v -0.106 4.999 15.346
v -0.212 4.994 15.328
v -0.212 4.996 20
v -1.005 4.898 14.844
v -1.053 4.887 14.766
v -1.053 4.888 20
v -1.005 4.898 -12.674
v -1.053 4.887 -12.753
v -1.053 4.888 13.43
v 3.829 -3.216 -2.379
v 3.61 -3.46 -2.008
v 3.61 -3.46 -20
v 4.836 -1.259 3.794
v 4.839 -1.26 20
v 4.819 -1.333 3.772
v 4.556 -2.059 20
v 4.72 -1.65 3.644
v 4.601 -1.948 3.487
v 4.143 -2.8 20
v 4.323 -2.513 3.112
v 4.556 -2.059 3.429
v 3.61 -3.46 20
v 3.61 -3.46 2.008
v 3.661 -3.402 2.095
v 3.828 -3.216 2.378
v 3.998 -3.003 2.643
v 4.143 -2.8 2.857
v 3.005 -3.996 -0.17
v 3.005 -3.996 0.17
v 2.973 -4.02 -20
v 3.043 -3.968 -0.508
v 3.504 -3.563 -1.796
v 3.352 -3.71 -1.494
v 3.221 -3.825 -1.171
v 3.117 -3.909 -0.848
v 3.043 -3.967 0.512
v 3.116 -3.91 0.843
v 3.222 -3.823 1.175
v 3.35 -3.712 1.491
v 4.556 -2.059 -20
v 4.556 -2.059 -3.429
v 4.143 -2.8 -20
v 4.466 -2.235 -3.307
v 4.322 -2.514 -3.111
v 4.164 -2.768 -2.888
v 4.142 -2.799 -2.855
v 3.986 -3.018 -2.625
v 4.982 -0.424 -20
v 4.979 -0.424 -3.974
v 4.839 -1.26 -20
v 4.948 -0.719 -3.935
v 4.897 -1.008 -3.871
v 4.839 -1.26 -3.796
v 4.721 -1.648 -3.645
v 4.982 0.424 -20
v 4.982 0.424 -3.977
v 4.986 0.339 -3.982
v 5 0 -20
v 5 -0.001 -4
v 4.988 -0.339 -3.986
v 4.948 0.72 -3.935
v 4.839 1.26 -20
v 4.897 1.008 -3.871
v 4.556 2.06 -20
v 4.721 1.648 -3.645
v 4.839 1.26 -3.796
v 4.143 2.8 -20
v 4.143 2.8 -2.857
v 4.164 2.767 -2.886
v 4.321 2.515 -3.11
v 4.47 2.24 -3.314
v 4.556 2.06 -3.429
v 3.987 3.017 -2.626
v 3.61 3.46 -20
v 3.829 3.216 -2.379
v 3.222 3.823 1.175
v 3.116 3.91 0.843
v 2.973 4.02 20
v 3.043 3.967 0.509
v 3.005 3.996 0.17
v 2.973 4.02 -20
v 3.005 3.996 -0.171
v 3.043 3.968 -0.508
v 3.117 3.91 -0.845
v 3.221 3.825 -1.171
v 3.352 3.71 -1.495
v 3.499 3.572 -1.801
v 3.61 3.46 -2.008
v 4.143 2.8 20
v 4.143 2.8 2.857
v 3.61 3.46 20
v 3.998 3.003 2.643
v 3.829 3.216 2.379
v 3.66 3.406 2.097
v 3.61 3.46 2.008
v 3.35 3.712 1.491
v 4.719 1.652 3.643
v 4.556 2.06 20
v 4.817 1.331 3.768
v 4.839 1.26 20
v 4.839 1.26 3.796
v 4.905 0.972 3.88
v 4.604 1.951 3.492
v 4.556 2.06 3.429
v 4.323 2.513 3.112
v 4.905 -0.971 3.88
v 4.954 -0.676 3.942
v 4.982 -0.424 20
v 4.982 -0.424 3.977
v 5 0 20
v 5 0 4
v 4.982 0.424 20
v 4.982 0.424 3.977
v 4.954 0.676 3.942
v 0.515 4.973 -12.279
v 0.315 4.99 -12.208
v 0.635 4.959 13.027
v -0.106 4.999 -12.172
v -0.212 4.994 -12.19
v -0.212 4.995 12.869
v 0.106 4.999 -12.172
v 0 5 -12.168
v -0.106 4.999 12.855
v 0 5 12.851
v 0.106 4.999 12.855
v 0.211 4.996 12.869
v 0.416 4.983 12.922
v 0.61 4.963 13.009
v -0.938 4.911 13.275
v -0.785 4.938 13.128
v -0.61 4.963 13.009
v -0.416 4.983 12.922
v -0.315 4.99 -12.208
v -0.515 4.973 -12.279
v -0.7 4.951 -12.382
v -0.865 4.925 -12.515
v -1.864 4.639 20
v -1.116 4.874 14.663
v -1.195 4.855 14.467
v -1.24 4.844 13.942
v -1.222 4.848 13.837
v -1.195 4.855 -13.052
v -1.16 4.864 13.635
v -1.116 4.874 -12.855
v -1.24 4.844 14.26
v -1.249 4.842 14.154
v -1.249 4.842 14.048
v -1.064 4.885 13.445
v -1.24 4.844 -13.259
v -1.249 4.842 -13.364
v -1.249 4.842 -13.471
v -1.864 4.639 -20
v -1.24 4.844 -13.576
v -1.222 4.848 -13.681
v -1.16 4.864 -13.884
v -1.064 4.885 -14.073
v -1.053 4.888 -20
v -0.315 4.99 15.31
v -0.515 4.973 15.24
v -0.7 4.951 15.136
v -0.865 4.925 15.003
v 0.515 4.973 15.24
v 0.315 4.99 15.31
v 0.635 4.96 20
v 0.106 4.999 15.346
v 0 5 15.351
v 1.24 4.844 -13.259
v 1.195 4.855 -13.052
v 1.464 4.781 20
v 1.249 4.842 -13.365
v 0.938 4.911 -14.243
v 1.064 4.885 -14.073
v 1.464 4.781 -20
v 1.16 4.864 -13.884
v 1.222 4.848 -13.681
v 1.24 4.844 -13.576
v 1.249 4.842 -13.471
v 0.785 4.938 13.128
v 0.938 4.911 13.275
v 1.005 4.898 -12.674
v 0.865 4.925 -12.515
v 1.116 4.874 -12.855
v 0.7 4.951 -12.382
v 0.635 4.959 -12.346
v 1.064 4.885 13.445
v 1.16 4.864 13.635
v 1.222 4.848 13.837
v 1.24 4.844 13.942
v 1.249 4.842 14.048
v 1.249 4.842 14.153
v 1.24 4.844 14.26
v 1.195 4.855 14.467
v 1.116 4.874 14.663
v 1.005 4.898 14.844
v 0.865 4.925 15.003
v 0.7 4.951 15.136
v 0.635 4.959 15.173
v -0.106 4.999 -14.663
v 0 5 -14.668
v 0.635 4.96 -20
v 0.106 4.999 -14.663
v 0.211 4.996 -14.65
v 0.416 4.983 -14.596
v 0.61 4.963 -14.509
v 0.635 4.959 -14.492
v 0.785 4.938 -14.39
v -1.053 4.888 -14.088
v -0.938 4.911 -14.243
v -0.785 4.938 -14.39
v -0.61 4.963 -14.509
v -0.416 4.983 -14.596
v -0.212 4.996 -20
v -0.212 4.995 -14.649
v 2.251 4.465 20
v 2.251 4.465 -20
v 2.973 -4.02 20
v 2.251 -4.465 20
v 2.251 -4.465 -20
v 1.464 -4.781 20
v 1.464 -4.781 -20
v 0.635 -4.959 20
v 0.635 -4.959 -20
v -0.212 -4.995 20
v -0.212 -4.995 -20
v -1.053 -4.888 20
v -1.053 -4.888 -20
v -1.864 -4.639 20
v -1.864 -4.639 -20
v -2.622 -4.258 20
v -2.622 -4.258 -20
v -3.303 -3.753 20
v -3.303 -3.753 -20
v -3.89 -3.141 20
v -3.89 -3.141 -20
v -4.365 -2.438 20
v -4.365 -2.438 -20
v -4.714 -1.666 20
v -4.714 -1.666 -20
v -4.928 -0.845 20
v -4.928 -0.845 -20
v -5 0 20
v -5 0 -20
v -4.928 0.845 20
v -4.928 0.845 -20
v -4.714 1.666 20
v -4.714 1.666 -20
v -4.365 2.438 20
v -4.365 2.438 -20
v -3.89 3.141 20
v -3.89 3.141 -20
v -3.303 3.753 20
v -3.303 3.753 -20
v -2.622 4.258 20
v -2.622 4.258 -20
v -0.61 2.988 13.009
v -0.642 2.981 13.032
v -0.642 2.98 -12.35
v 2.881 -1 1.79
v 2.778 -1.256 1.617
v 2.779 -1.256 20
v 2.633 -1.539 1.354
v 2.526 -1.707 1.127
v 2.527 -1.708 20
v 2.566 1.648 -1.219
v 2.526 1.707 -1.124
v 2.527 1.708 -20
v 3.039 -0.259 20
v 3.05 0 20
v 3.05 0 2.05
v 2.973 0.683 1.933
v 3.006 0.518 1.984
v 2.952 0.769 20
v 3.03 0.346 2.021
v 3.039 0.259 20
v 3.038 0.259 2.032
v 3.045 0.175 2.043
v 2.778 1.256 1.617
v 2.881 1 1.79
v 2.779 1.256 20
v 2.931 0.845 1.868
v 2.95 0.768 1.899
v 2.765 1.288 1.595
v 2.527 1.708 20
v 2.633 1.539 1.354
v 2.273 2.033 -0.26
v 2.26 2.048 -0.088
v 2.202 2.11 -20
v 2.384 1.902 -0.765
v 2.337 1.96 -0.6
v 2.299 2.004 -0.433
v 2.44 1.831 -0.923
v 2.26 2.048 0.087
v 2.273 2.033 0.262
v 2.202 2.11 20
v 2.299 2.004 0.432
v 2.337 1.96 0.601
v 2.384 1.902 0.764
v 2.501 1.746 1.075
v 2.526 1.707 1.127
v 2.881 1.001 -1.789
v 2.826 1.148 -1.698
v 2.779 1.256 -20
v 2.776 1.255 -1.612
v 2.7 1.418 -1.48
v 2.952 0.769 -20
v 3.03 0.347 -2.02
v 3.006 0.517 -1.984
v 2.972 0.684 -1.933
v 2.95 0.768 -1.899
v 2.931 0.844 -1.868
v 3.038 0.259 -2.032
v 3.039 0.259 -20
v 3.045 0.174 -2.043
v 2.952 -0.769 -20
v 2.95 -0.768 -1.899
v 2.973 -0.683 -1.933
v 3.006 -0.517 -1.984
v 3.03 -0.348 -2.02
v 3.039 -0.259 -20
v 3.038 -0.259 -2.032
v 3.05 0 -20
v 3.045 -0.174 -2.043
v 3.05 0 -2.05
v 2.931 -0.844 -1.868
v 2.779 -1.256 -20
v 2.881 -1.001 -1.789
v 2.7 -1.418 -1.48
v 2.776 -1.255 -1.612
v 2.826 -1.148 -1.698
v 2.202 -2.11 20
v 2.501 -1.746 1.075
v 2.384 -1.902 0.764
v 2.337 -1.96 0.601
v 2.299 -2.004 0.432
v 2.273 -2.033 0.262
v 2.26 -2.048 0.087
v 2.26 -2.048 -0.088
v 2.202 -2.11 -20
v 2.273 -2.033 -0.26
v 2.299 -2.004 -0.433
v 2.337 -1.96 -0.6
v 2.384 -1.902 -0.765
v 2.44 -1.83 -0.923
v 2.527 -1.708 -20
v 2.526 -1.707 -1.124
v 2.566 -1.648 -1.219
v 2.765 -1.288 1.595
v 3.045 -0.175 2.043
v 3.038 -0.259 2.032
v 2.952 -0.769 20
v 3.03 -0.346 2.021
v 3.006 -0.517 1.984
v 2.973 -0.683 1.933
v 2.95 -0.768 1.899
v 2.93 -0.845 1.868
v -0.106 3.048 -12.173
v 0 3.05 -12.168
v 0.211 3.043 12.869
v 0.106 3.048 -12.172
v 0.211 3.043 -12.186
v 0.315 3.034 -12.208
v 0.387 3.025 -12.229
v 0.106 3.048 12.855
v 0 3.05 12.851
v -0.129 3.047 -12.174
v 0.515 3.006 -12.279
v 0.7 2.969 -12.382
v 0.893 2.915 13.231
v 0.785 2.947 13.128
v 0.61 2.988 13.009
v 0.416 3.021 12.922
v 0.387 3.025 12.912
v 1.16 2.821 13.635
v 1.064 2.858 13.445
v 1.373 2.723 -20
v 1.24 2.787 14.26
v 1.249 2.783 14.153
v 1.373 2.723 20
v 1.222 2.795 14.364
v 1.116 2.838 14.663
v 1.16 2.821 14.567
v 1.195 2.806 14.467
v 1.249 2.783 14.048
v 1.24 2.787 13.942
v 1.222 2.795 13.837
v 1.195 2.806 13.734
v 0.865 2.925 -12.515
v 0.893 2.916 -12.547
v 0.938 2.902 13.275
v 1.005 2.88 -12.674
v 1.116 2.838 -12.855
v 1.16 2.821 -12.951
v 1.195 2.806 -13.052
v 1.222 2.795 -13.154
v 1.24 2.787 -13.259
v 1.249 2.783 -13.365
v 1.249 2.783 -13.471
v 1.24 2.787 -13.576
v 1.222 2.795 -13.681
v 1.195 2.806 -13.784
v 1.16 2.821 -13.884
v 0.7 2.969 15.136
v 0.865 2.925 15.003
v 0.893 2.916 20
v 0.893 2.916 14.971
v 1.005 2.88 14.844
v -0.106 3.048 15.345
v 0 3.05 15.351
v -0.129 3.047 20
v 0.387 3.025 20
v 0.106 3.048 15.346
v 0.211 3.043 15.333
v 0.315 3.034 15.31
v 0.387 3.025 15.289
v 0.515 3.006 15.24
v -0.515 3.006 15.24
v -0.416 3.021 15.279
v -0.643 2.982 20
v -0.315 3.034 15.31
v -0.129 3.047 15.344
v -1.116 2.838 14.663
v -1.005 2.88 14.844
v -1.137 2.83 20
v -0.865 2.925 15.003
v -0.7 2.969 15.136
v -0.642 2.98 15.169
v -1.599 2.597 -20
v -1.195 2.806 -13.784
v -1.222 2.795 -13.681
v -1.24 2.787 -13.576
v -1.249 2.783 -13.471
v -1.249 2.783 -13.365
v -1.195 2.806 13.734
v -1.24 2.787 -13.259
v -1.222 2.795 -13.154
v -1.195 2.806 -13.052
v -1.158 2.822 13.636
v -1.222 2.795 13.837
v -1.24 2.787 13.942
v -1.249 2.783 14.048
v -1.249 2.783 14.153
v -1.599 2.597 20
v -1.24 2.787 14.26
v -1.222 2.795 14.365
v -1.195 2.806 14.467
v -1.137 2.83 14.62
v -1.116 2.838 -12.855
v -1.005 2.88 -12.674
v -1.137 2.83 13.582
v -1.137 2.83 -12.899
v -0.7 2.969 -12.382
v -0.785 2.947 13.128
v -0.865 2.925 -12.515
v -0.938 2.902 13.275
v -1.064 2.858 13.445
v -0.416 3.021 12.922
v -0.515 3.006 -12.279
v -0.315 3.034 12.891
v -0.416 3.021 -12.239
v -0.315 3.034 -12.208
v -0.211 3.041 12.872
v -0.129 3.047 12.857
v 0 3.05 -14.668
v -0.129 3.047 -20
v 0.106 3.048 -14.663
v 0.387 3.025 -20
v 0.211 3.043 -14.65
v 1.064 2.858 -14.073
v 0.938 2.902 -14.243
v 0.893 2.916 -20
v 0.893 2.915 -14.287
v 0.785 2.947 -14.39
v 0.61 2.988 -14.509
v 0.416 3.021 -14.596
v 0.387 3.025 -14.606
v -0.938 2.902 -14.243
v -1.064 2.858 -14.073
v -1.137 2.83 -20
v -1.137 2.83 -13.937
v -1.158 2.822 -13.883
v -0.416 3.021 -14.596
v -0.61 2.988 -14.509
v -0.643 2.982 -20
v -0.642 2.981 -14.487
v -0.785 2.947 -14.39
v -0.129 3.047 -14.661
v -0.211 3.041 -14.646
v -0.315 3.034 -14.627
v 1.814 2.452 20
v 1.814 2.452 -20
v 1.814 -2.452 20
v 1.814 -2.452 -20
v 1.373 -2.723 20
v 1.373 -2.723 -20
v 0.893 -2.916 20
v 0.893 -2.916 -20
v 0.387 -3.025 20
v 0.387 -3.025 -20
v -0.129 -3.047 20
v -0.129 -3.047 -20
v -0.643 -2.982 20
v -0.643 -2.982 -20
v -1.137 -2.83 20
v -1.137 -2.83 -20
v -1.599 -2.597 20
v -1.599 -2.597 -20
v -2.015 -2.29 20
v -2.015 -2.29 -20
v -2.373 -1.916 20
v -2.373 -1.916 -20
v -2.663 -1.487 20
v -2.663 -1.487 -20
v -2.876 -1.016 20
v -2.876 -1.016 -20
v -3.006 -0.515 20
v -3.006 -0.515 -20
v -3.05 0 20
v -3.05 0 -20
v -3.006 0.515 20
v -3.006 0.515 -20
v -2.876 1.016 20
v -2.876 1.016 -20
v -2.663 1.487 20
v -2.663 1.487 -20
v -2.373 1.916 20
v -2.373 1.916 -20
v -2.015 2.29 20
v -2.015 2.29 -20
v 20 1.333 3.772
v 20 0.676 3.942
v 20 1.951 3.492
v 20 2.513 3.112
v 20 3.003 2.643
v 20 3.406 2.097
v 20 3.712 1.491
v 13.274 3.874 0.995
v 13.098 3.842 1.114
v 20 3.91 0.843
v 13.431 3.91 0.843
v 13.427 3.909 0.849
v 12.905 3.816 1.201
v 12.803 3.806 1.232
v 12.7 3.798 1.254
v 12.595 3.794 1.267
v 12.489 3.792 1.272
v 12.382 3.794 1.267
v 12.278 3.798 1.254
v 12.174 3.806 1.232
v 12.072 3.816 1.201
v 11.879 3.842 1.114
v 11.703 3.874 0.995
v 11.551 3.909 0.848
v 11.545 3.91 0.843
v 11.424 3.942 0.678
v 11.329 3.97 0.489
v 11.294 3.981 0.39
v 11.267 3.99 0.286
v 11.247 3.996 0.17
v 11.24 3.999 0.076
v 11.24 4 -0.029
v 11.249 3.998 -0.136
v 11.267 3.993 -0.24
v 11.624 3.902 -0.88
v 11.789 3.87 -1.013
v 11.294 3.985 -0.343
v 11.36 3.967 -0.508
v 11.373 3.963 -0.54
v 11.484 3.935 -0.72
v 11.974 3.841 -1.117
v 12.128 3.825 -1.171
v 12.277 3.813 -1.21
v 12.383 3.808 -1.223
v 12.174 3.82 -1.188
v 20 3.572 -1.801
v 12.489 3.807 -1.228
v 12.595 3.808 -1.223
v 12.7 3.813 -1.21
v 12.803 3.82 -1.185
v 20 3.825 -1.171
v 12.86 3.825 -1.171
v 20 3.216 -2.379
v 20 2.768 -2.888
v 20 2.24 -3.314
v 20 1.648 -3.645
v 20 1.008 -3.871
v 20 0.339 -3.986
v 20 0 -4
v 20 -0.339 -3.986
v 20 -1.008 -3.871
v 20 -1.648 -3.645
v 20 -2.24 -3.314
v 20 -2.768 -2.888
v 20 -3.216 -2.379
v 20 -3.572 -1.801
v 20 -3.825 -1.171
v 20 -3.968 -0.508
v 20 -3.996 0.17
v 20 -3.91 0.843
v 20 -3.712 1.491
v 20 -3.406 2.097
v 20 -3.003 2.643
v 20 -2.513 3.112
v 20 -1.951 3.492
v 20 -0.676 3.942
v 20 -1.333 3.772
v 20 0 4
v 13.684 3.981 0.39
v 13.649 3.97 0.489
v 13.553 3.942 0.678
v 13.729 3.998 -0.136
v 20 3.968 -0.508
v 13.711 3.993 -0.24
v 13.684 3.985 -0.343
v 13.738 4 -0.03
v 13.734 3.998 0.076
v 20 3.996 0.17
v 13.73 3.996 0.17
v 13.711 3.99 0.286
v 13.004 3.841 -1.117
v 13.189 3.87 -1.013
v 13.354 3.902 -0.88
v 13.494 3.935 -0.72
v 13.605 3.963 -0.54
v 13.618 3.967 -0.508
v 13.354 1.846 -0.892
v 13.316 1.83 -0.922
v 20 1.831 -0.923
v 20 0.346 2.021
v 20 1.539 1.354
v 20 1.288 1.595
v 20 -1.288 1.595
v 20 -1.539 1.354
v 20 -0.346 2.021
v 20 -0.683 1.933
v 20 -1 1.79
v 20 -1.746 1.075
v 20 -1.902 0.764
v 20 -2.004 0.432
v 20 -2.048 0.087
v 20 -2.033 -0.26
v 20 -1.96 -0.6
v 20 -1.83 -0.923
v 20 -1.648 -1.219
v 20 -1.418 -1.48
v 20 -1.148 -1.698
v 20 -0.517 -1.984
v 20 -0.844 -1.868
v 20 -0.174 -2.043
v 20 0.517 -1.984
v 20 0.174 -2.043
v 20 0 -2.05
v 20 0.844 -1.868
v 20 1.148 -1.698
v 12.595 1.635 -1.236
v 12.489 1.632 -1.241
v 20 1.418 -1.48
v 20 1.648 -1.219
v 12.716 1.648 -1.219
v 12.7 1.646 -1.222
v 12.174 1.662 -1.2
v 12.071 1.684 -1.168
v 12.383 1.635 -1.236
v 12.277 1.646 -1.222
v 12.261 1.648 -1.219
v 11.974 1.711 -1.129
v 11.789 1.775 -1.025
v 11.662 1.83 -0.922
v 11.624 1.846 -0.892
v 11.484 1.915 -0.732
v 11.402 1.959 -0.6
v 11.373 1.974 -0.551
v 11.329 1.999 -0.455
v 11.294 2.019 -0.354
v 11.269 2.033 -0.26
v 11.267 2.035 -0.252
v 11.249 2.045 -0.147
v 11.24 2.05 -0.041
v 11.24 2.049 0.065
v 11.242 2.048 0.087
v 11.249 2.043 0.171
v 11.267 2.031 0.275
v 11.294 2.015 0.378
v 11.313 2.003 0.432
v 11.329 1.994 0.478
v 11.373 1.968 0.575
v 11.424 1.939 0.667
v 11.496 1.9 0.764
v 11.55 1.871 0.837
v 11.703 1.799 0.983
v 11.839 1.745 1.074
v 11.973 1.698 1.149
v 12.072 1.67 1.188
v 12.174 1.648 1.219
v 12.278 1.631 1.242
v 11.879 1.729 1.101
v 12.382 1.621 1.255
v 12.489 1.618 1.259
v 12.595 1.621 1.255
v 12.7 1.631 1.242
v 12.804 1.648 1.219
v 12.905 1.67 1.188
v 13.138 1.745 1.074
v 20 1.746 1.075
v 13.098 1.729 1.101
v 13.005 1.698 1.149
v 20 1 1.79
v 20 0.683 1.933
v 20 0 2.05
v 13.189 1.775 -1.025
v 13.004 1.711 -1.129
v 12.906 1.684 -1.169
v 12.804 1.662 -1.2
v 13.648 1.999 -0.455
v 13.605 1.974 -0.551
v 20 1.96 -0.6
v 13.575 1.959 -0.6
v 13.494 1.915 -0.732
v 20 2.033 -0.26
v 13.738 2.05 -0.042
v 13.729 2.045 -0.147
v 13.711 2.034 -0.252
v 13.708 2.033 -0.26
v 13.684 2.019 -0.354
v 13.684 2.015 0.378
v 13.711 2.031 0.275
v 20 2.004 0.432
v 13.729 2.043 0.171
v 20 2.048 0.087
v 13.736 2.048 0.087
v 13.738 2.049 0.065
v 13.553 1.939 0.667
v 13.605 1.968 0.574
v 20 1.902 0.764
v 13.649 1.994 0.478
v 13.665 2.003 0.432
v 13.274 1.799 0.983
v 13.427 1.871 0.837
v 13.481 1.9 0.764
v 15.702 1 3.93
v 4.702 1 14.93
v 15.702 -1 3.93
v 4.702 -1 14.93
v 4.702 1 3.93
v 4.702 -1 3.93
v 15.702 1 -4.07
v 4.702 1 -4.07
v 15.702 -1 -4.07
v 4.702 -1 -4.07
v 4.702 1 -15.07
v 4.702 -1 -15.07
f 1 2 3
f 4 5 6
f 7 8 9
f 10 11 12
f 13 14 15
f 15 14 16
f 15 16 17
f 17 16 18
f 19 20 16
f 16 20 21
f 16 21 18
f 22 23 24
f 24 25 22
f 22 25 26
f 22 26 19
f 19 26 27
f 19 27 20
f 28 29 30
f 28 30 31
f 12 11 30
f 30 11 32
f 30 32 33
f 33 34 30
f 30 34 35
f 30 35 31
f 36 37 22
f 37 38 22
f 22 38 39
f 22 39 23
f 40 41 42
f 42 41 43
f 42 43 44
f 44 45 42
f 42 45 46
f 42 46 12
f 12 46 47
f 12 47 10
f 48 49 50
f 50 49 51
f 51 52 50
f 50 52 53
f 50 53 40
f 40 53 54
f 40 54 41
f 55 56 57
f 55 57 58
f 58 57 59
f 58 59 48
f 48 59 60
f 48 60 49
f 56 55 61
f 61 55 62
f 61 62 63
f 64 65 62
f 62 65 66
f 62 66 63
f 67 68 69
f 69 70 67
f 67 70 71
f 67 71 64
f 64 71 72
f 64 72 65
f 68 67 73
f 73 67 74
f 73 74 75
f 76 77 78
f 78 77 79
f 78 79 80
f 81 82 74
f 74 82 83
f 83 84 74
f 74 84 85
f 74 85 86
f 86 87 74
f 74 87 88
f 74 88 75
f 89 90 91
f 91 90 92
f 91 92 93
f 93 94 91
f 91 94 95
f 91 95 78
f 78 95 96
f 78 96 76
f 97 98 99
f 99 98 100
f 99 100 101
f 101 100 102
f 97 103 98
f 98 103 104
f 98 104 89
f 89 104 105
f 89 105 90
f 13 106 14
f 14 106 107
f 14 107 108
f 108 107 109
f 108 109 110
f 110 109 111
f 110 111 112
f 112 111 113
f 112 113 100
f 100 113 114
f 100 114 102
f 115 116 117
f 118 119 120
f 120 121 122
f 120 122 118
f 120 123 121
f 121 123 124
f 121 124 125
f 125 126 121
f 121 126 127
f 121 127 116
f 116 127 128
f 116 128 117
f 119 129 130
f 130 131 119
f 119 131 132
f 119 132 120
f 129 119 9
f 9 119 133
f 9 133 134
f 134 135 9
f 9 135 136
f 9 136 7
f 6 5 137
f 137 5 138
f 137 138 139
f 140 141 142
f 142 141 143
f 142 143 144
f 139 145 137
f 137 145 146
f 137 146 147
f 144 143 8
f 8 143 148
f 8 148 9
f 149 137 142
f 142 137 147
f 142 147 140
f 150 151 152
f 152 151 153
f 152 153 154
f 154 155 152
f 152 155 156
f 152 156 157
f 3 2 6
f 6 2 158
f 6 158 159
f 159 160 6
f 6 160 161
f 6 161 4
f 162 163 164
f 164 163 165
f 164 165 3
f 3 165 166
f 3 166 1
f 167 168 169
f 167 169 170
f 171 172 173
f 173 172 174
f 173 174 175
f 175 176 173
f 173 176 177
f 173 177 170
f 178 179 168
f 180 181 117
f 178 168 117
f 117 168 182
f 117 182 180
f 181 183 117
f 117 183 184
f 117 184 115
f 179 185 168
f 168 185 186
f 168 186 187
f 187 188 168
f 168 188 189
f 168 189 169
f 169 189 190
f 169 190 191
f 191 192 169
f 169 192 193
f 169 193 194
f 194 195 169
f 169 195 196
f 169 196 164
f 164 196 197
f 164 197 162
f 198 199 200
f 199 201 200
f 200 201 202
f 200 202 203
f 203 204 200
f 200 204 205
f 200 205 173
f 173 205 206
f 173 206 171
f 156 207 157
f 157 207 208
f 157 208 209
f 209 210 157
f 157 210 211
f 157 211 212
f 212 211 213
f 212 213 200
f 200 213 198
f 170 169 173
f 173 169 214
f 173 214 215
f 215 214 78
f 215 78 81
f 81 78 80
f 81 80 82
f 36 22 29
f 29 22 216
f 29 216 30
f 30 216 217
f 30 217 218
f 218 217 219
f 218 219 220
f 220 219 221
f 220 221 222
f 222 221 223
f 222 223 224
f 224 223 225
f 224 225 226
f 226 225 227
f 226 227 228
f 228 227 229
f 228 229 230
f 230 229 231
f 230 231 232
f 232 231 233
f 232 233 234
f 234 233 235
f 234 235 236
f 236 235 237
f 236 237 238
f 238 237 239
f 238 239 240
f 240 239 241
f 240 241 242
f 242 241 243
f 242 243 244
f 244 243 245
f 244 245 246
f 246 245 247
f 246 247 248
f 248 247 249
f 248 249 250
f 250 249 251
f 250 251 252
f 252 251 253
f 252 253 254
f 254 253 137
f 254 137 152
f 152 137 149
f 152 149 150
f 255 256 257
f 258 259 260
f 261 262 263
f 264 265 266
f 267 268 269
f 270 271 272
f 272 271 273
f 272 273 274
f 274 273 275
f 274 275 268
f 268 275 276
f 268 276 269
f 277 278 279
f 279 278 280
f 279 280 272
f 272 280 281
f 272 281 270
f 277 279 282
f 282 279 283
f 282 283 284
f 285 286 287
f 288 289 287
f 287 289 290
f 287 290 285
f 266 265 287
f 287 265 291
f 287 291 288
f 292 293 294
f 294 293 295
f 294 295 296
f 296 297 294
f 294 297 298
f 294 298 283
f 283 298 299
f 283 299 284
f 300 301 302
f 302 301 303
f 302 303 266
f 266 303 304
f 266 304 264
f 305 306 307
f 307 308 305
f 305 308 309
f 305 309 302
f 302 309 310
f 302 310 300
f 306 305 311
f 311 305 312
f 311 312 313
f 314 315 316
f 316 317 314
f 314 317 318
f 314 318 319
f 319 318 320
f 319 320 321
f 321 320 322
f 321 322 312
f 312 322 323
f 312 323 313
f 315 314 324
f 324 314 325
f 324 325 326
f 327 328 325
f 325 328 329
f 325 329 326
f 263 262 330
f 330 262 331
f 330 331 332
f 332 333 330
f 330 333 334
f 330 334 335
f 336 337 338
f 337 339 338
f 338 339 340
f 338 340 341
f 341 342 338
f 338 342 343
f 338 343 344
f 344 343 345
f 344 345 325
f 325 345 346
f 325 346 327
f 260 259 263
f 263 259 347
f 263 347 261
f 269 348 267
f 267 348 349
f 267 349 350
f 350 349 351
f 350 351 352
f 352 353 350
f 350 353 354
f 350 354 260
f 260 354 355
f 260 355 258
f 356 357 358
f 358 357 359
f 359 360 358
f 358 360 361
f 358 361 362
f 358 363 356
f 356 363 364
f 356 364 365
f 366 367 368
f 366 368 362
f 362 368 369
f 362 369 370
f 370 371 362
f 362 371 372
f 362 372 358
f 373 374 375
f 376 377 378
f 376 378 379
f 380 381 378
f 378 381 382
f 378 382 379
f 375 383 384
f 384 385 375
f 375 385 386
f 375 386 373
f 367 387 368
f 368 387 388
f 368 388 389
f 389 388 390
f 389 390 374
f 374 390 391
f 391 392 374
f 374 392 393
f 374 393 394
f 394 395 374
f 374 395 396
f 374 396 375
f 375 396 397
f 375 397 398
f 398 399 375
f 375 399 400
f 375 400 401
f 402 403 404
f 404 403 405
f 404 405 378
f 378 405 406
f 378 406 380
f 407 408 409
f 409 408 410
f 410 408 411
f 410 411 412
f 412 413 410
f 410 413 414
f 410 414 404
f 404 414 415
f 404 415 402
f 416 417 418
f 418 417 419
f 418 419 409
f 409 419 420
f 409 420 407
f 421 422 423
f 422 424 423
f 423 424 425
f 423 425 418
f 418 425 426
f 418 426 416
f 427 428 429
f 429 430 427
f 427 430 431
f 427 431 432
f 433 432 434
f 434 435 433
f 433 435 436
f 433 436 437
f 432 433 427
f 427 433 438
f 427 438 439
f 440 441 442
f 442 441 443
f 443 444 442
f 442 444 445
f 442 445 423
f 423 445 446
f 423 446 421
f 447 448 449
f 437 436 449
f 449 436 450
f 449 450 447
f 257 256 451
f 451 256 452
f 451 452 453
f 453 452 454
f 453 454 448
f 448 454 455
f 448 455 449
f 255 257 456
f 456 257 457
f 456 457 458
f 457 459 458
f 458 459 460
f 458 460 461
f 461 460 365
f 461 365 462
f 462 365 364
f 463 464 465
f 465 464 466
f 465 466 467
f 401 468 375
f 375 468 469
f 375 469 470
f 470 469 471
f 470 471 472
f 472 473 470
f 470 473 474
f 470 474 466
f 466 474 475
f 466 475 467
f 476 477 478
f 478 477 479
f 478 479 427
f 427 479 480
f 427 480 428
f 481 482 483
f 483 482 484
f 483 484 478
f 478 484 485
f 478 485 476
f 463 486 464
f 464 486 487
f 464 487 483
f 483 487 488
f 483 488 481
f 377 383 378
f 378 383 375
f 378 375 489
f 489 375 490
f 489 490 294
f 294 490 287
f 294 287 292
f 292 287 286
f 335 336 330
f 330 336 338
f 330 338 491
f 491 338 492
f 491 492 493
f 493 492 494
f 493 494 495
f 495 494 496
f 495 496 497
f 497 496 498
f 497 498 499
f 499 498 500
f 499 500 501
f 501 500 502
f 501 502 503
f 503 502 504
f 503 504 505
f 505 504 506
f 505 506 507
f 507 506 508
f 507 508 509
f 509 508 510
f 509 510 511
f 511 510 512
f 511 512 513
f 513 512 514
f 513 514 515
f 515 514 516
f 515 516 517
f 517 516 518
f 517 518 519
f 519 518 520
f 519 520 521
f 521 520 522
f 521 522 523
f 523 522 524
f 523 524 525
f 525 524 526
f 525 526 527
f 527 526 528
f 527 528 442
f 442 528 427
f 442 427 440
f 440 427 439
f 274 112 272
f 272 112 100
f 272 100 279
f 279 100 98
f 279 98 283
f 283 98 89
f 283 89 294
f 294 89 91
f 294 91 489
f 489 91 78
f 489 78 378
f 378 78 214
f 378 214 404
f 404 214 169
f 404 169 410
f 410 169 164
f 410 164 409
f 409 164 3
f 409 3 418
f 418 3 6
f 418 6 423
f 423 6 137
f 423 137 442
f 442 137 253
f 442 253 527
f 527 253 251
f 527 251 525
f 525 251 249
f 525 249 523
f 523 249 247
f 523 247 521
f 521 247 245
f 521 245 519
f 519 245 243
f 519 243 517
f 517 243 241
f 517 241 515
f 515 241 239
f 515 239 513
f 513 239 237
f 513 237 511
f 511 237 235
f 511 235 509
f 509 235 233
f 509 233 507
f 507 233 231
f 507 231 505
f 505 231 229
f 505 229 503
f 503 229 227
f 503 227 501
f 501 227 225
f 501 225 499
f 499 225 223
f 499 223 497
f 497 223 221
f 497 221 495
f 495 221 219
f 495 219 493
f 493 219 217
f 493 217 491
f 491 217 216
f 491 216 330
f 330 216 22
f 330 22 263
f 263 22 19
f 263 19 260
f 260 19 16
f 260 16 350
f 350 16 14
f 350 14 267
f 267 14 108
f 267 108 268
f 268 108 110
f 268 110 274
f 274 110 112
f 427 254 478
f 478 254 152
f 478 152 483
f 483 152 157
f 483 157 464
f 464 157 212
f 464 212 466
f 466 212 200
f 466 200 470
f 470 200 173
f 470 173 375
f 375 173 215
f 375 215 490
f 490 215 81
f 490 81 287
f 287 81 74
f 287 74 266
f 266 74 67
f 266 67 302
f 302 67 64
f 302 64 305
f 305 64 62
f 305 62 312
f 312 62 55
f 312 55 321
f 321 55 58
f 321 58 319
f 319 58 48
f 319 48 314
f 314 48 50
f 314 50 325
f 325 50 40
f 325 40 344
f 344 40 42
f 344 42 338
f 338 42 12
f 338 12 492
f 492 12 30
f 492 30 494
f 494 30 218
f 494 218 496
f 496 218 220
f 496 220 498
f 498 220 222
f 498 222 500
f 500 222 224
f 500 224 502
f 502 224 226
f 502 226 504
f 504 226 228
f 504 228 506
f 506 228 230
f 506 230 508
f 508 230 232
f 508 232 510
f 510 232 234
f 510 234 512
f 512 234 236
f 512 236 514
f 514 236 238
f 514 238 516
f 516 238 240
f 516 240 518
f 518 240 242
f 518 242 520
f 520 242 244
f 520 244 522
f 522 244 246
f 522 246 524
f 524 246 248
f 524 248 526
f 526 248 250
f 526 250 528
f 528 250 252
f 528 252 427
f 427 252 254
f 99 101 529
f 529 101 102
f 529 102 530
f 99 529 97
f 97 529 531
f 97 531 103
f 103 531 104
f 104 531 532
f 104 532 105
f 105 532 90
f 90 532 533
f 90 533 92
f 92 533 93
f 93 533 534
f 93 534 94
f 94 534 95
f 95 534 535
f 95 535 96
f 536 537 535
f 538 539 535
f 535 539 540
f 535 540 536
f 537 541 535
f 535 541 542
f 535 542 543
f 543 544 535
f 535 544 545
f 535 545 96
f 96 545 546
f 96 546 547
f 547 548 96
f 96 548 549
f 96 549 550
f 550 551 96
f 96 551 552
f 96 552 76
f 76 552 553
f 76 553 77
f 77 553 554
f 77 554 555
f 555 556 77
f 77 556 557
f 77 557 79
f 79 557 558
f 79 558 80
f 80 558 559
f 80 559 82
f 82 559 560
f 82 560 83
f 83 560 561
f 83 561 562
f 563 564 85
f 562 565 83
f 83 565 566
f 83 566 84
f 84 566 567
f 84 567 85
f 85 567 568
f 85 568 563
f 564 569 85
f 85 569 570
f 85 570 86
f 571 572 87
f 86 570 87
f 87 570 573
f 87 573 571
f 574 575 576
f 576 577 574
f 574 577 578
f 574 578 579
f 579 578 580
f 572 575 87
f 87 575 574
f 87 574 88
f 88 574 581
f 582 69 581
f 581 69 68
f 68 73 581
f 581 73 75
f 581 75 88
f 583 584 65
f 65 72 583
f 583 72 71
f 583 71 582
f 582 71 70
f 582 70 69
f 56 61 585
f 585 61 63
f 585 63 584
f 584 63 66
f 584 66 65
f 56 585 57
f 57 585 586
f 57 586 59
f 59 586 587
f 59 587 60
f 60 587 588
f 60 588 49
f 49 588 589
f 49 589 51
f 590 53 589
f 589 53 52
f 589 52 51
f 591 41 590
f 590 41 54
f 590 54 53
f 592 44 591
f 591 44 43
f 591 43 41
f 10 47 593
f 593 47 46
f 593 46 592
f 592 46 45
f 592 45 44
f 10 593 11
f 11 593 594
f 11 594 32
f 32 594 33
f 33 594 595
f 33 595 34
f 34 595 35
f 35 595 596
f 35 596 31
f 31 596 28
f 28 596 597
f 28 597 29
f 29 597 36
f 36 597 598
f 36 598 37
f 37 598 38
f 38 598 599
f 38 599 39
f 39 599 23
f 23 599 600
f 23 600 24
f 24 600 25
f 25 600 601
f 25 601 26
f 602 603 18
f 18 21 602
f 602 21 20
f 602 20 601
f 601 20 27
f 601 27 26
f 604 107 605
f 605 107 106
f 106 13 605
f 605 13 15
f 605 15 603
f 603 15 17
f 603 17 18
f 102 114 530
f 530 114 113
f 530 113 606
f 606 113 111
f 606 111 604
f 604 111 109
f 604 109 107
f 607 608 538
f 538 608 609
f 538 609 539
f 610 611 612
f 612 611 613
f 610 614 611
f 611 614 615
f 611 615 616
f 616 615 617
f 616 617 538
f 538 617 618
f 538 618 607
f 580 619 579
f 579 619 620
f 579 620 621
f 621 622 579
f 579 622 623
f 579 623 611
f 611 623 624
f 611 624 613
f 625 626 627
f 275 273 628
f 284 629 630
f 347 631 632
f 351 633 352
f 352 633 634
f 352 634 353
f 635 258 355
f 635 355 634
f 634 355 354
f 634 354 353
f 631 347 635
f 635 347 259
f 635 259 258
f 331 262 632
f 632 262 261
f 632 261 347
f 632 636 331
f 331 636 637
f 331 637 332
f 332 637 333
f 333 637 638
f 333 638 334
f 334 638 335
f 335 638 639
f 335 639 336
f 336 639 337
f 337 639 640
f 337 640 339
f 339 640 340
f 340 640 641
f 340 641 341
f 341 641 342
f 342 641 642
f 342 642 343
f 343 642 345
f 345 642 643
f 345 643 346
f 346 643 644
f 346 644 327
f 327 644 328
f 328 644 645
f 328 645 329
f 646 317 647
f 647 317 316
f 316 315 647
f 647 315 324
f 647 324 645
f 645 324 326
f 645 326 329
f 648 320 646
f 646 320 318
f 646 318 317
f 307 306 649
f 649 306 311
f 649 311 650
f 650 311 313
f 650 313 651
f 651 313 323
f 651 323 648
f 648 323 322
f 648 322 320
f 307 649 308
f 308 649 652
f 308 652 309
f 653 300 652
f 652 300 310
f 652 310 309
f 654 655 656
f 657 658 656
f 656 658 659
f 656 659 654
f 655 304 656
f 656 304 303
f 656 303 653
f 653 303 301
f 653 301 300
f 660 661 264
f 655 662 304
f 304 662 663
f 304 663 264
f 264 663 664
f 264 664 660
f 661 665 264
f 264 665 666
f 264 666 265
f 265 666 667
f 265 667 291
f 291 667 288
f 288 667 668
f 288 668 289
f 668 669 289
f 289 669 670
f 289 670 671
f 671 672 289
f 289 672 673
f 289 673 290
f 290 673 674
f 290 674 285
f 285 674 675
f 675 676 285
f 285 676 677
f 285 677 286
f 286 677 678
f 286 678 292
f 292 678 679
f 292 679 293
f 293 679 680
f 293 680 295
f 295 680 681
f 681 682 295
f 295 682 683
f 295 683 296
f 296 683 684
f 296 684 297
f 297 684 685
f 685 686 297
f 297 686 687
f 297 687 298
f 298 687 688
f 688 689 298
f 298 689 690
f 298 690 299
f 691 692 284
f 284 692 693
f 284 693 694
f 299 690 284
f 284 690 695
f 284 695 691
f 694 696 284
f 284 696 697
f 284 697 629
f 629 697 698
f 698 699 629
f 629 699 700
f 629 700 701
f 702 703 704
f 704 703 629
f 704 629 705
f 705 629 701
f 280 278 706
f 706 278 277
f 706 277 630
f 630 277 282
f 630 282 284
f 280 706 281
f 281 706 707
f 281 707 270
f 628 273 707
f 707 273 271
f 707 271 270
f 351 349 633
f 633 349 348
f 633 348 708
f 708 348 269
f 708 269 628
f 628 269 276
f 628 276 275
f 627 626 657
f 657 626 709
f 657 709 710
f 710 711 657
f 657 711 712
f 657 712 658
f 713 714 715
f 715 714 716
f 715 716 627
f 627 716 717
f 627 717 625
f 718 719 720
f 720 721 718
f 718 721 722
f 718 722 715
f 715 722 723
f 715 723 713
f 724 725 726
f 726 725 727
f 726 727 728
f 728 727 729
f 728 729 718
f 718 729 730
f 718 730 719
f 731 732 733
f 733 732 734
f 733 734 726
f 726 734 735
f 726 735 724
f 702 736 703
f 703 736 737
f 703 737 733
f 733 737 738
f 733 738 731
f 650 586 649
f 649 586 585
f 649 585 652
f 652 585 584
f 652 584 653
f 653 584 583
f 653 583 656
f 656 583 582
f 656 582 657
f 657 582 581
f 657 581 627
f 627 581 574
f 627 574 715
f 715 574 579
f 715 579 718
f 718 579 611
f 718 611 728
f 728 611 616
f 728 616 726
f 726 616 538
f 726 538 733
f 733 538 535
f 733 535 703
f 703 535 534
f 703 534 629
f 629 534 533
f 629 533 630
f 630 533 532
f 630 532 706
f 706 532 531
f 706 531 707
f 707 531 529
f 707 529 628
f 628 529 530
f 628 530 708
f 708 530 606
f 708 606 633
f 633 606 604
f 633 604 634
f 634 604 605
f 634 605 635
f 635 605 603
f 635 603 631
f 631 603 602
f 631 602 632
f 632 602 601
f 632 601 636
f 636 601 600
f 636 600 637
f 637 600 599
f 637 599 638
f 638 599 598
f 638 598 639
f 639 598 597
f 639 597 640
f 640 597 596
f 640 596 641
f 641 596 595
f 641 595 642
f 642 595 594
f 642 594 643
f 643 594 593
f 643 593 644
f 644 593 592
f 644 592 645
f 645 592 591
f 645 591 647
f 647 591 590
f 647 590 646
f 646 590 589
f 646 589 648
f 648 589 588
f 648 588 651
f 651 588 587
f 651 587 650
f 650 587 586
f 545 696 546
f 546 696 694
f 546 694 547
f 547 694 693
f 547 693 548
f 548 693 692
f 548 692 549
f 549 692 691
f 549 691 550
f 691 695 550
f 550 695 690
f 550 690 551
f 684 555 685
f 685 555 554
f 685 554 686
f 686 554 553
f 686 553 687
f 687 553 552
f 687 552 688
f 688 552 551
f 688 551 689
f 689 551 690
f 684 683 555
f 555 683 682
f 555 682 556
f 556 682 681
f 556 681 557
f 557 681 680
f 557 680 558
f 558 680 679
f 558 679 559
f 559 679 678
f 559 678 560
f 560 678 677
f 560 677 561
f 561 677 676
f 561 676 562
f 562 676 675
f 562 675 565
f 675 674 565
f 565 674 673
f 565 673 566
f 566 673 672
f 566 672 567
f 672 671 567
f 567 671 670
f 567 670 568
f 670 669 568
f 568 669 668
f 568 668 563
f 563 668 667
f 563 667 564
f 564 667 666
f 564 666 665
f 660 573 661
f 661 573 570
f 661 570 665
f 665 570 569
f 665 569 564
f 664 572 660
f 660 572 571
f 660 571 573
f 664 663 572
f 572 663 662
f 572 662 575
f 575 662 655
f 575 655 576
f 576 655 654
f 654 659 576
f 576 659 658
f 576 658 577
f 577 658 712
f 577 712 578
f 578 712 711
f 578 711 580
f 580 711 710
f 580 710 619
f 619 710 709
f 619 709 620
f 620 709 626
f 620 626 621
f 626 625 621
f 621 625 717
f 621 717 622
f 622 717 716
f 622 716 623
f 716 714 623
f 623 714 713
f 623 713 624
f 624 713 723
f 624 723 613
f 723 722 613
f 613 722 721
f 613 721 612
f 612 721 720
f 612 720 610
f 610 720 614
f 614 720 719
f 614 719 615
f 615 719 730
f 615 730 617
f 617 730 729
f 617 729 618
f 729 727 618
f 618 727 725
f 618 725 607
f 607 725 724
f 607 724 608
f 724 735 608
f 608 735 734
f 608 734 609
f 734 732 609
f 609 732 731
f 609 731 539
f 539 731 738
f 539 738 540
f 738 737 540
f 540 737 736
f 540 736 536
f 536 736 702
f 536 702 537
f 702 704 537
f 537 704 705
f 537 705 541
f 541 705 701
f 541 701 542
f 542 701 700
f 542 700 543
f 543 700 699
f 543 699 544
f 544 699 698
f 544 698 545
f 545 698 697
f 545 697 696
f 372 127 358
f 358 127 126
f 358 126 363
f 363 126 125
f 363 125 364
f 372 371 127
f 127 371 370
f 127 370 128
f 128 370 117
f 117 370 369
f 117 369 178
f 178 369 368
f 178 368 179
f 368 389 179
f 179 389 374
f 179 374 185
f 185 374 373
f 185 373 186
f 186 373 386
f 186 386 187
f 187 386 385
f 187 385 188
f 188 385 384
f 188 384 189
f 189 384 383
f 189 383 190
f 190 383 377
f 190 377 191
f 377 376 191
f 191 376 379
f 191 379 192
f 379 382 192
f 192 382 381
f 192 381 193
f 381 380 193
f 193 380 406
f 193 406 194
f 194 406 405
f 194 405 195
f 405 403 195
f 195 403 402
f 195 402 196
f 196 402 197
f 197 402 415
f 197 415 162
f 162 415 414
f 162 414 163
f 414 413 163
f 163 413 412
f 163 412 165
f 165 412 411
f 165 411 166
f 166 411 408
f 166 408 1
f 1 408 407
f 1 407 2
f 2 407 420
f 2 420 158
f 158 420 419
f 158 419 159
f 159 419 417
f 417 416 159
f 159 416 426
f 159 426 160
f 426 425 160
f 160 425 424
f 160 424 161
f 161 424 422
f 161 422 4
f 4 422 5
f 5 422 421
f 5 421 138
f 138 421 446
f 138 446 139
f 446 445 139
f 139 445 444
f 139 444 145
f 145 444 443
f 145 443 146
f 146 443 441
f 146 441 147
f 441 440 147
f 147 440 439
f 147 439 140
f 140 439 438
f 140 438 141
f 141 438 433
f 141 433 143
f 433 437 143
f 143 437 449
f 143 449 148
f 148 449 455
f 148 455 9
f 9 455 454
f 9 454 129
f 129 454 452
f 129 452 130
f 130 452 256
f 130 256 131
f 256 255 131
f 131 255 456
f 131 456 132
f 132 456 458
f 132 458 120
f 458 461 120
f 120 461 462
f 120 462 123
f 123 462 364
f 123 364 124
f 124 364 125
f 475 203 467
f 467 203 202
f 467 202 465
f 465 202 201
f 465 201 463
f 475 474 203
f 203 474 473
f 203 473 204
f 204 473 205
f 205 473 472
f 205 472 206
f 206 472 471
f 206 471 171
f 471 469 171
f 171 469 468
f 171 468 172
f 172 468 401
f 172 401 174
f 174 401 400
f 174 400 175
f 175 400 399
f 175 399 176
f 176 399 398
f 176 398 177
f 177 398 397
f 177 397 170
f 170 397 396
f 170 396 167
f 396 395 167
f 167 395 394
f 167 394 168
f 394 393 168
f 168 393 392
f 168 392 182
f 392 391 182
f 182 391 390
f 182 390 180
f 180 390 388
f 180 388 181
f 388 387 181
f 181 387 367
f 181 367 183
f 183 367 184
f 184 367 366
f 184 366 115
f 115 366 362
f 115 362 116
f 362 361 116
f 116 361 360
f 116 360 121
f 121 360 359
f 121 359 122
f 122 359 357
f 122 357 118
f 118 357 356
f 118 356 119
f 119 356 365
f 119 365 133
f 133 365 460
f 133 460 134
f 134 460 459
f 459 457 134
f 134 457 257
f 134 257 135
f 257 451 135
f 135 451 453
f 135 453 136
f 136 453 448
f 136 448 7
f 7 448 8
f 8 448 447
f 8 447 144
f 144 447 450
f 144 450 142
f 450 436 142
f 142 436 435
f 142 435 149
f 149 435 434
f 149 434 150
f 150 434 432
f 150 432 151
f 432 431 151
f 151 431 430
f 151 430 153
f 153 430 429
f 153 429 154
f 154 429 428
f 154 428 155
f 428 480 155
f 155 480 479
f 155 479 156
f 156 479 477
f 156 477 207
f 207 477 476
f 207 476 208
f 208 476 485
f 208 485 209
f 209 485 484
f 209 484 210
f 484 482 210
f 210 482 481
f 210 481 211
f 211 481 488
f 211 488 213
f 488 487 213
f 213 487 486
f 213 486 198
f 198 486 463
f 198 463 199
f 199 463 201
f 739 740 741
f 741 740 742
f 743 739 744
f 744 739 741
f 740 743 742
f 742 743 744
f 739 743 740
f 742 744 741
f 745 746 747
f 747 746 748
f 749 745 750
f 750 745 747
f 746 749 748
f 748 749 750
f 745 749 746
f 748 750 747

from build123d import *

# Parameters (mm, degrees)
SKETCH1_R                      = 5
SKETCH1_R_2                    = 3.05
BOSS_EXTRUDE1_DEPTH            = 20
BOSS_EXTRUDE2_START            = -20
SKETCH1_2_R                    = 5
SKETCH1_2_R_2                  = 3.05
BOSS_EXTRUDE2_DEPTH            = 20
SKETCH2_R                      = 4
SKETCH2_R_2                    = 2.05
BOSS_EXTRUDE3_DEPTH            = 20
CUT_EXTRUDE1_START             = -20
SKETCH3_R                      = 2.05
CUT_EXTRUDE1_DEPTH             = 20
SKETCH4_R                      = 3.05
CUT_EXTRUDE2_DEPTH             = 46.000000144
M3X0_5_TAPPED_HOLE1_REACH      = 30.067
M3X0_5_TAPPED_HOLE1_BORE_R     = 1.25
SKETCH7_W                      = 1.25
SKETCH7_H                      = 5
M3X0_5_TAPPED_HOLE2_AT_2_COUNT = 2
M3X0_5_TAPPED_HOLE2_AT_2_PITCH = 27.518358086
BOSS_EXTRUDE4_DEPTH            = 1
BOSS_EXTRUDE4_2_DEPTH          = 1


with BuildPart() as part:
    # Sketch1 → Boss-Extrude1 (new body)
    with BuildSketch(Plane.XY):
        Circle(SKETCH1_R)
        Circle(SKETCH1_R_2, mode=Mode.SUBTRACT)
    extrude(amount=BOSS_EXTRUDE1_DEPTH)

    # Sketch1<2> → Boss-Extrude2 (add)
    with BuildSketch(Plane.XY.offset(BOSS_EXTRUDE2_START)):
        Circle(SKETCH1_2_R)
        Circle(SKETCH1_2_R_2, mode=Mode.SUBTRACT)
    extrude(amount=BOSS_EXTRUDE2_DEPTH)

    # Sketch2 → Boss-Extrude3 (add)
    with BuildSketch(Plane(origin=(0, 0, 0), x_dir=(0, 0, -1), z_dir=(1, 0, 0))):
        Circle(SKETCH2_R)
        with Locations(Location((0, 0, 0), (0, 0, 180))):
            Circle(SKETCH2_R_2, mode=Mode.SUBTRACT)
    extrude(amount=BOSS_EXTRUDE3_DEPTH)

    # Sketch3 → Cut-Extrude1 (cut)
    with BuildSketch(Plane(origin=(20, 0, 0), x_dir=(0, 0, -1), z_dir=(1, 0, 0)).offset(CUT_EXTRUDE1_START)):
        Circle(SKETCH3_R)
    extrude(amount=CUT_EXTRUDE1_DEPTH, mode=Mode.SUBTRACT)

    # Sketch4 → Cut-Extrude2 (cut, through all)
    with BuildSketch(Plane.XY.offset(20)):
        Circle(SKETCH4_R)
    extrude(amount=-CUT_EXTRUDE2_DEPTH, mode=Mode.SUBTRACT)

    # M3x0.5 Tapped Hole1 bore (on position points) → M3x0.5 Tapped Hole1 (cut, up to next)
    with BuildSketch(Plane(origin=(12.488759404, 3.999932689, 0.023205297), x_dir=(0, -0.005801324205, 0.999983172177), z_dir=(0, 0.999983172177, 0.005801324205)), mode=Mode.PRIVATE) as m3x0_5_tapped_hole1_sk1:
        Circle(M3X0_5_TAPPED_HOLE1_BORE_R)
    m3x0_5_tapped_hole1_tool1 = extrude(m3x0_5_tapped_hole1_sk1.sketch, amount=-M3X0_5_TAPPED_HOLE1_REACH, mode=Mode.PRIVATE) & part.part
    add(m3x0_5_tapped_hole1_tool1.solids().sort_by_distance((12.488759, 3.999933, 0.023205))[0], mode=Mode.SUBTRACT)

    # Sketch7 → M3x0.5 Tapped Hole2 (revolve, cut)
    with BuildSketch(Plane(origin=(0, 0, -13.417622701), x_dir=(0, 0, -1), z_dir=(1, 0, 0))):
        with Locations((0.625, 2.5)):
            Rectangle(SKETCH7_W, SKETCH7_H)
    m3x0_5_tapped_hole2 = revolve(axis=Axis((0, -6.35, -13.417622701), (0, 1, 0)), mode=Mode.SUBTRACT)

    # M3x0.5 Tapped Hole2 at 2: M3x0.5 Tapped Hole2 ×2
    with Locations(*[(0, 0, i * M3X0_5_TAPPED_HOLE2_AT_2_PITCH) for i in range(1, M3X0_5_TAPPED_HOLE2_AT_2_COUNT)]):
        add(m3x0_5_tapped_hole2, mode=Mode.SUBTRACT)


with BuildPart() as body_2:
    # Sketch11 → Boss-Extrude4 (new, symmetric)
    with BuildSketch(Plane(origin=(0, 0, 0), x_dir=(-1, 0, 0), z_dir=(0, -1, 0))):
        Polygon((-4.702423176, -14.930219956), (-4.702423176, -3.930219956), (-15.702423176, -3.930219956), align=None)
    extrude(amount=BOSS_EXTRUDE4_DEPTH, both=True)


with BuildPart() as body_3:
    # Sketch11 → Boss-Extrude4 2 (new, symmetric)
    with BuildSketch(Plane(origin=(0, 0, 0), x_dir=(-1, 0, 0), z_dir=(0, -1, 0))):
        Polygon((-4.702423176, 4.069780044), (-4.702423176, 15.069780044), (-15.702423176, 4.069780044), align=None)
    extrude(amount=BOSS_EXTRUDE4_2_DEPTH, both=True)


solid = Compound([part.part, body_2.part, body_3.part])
